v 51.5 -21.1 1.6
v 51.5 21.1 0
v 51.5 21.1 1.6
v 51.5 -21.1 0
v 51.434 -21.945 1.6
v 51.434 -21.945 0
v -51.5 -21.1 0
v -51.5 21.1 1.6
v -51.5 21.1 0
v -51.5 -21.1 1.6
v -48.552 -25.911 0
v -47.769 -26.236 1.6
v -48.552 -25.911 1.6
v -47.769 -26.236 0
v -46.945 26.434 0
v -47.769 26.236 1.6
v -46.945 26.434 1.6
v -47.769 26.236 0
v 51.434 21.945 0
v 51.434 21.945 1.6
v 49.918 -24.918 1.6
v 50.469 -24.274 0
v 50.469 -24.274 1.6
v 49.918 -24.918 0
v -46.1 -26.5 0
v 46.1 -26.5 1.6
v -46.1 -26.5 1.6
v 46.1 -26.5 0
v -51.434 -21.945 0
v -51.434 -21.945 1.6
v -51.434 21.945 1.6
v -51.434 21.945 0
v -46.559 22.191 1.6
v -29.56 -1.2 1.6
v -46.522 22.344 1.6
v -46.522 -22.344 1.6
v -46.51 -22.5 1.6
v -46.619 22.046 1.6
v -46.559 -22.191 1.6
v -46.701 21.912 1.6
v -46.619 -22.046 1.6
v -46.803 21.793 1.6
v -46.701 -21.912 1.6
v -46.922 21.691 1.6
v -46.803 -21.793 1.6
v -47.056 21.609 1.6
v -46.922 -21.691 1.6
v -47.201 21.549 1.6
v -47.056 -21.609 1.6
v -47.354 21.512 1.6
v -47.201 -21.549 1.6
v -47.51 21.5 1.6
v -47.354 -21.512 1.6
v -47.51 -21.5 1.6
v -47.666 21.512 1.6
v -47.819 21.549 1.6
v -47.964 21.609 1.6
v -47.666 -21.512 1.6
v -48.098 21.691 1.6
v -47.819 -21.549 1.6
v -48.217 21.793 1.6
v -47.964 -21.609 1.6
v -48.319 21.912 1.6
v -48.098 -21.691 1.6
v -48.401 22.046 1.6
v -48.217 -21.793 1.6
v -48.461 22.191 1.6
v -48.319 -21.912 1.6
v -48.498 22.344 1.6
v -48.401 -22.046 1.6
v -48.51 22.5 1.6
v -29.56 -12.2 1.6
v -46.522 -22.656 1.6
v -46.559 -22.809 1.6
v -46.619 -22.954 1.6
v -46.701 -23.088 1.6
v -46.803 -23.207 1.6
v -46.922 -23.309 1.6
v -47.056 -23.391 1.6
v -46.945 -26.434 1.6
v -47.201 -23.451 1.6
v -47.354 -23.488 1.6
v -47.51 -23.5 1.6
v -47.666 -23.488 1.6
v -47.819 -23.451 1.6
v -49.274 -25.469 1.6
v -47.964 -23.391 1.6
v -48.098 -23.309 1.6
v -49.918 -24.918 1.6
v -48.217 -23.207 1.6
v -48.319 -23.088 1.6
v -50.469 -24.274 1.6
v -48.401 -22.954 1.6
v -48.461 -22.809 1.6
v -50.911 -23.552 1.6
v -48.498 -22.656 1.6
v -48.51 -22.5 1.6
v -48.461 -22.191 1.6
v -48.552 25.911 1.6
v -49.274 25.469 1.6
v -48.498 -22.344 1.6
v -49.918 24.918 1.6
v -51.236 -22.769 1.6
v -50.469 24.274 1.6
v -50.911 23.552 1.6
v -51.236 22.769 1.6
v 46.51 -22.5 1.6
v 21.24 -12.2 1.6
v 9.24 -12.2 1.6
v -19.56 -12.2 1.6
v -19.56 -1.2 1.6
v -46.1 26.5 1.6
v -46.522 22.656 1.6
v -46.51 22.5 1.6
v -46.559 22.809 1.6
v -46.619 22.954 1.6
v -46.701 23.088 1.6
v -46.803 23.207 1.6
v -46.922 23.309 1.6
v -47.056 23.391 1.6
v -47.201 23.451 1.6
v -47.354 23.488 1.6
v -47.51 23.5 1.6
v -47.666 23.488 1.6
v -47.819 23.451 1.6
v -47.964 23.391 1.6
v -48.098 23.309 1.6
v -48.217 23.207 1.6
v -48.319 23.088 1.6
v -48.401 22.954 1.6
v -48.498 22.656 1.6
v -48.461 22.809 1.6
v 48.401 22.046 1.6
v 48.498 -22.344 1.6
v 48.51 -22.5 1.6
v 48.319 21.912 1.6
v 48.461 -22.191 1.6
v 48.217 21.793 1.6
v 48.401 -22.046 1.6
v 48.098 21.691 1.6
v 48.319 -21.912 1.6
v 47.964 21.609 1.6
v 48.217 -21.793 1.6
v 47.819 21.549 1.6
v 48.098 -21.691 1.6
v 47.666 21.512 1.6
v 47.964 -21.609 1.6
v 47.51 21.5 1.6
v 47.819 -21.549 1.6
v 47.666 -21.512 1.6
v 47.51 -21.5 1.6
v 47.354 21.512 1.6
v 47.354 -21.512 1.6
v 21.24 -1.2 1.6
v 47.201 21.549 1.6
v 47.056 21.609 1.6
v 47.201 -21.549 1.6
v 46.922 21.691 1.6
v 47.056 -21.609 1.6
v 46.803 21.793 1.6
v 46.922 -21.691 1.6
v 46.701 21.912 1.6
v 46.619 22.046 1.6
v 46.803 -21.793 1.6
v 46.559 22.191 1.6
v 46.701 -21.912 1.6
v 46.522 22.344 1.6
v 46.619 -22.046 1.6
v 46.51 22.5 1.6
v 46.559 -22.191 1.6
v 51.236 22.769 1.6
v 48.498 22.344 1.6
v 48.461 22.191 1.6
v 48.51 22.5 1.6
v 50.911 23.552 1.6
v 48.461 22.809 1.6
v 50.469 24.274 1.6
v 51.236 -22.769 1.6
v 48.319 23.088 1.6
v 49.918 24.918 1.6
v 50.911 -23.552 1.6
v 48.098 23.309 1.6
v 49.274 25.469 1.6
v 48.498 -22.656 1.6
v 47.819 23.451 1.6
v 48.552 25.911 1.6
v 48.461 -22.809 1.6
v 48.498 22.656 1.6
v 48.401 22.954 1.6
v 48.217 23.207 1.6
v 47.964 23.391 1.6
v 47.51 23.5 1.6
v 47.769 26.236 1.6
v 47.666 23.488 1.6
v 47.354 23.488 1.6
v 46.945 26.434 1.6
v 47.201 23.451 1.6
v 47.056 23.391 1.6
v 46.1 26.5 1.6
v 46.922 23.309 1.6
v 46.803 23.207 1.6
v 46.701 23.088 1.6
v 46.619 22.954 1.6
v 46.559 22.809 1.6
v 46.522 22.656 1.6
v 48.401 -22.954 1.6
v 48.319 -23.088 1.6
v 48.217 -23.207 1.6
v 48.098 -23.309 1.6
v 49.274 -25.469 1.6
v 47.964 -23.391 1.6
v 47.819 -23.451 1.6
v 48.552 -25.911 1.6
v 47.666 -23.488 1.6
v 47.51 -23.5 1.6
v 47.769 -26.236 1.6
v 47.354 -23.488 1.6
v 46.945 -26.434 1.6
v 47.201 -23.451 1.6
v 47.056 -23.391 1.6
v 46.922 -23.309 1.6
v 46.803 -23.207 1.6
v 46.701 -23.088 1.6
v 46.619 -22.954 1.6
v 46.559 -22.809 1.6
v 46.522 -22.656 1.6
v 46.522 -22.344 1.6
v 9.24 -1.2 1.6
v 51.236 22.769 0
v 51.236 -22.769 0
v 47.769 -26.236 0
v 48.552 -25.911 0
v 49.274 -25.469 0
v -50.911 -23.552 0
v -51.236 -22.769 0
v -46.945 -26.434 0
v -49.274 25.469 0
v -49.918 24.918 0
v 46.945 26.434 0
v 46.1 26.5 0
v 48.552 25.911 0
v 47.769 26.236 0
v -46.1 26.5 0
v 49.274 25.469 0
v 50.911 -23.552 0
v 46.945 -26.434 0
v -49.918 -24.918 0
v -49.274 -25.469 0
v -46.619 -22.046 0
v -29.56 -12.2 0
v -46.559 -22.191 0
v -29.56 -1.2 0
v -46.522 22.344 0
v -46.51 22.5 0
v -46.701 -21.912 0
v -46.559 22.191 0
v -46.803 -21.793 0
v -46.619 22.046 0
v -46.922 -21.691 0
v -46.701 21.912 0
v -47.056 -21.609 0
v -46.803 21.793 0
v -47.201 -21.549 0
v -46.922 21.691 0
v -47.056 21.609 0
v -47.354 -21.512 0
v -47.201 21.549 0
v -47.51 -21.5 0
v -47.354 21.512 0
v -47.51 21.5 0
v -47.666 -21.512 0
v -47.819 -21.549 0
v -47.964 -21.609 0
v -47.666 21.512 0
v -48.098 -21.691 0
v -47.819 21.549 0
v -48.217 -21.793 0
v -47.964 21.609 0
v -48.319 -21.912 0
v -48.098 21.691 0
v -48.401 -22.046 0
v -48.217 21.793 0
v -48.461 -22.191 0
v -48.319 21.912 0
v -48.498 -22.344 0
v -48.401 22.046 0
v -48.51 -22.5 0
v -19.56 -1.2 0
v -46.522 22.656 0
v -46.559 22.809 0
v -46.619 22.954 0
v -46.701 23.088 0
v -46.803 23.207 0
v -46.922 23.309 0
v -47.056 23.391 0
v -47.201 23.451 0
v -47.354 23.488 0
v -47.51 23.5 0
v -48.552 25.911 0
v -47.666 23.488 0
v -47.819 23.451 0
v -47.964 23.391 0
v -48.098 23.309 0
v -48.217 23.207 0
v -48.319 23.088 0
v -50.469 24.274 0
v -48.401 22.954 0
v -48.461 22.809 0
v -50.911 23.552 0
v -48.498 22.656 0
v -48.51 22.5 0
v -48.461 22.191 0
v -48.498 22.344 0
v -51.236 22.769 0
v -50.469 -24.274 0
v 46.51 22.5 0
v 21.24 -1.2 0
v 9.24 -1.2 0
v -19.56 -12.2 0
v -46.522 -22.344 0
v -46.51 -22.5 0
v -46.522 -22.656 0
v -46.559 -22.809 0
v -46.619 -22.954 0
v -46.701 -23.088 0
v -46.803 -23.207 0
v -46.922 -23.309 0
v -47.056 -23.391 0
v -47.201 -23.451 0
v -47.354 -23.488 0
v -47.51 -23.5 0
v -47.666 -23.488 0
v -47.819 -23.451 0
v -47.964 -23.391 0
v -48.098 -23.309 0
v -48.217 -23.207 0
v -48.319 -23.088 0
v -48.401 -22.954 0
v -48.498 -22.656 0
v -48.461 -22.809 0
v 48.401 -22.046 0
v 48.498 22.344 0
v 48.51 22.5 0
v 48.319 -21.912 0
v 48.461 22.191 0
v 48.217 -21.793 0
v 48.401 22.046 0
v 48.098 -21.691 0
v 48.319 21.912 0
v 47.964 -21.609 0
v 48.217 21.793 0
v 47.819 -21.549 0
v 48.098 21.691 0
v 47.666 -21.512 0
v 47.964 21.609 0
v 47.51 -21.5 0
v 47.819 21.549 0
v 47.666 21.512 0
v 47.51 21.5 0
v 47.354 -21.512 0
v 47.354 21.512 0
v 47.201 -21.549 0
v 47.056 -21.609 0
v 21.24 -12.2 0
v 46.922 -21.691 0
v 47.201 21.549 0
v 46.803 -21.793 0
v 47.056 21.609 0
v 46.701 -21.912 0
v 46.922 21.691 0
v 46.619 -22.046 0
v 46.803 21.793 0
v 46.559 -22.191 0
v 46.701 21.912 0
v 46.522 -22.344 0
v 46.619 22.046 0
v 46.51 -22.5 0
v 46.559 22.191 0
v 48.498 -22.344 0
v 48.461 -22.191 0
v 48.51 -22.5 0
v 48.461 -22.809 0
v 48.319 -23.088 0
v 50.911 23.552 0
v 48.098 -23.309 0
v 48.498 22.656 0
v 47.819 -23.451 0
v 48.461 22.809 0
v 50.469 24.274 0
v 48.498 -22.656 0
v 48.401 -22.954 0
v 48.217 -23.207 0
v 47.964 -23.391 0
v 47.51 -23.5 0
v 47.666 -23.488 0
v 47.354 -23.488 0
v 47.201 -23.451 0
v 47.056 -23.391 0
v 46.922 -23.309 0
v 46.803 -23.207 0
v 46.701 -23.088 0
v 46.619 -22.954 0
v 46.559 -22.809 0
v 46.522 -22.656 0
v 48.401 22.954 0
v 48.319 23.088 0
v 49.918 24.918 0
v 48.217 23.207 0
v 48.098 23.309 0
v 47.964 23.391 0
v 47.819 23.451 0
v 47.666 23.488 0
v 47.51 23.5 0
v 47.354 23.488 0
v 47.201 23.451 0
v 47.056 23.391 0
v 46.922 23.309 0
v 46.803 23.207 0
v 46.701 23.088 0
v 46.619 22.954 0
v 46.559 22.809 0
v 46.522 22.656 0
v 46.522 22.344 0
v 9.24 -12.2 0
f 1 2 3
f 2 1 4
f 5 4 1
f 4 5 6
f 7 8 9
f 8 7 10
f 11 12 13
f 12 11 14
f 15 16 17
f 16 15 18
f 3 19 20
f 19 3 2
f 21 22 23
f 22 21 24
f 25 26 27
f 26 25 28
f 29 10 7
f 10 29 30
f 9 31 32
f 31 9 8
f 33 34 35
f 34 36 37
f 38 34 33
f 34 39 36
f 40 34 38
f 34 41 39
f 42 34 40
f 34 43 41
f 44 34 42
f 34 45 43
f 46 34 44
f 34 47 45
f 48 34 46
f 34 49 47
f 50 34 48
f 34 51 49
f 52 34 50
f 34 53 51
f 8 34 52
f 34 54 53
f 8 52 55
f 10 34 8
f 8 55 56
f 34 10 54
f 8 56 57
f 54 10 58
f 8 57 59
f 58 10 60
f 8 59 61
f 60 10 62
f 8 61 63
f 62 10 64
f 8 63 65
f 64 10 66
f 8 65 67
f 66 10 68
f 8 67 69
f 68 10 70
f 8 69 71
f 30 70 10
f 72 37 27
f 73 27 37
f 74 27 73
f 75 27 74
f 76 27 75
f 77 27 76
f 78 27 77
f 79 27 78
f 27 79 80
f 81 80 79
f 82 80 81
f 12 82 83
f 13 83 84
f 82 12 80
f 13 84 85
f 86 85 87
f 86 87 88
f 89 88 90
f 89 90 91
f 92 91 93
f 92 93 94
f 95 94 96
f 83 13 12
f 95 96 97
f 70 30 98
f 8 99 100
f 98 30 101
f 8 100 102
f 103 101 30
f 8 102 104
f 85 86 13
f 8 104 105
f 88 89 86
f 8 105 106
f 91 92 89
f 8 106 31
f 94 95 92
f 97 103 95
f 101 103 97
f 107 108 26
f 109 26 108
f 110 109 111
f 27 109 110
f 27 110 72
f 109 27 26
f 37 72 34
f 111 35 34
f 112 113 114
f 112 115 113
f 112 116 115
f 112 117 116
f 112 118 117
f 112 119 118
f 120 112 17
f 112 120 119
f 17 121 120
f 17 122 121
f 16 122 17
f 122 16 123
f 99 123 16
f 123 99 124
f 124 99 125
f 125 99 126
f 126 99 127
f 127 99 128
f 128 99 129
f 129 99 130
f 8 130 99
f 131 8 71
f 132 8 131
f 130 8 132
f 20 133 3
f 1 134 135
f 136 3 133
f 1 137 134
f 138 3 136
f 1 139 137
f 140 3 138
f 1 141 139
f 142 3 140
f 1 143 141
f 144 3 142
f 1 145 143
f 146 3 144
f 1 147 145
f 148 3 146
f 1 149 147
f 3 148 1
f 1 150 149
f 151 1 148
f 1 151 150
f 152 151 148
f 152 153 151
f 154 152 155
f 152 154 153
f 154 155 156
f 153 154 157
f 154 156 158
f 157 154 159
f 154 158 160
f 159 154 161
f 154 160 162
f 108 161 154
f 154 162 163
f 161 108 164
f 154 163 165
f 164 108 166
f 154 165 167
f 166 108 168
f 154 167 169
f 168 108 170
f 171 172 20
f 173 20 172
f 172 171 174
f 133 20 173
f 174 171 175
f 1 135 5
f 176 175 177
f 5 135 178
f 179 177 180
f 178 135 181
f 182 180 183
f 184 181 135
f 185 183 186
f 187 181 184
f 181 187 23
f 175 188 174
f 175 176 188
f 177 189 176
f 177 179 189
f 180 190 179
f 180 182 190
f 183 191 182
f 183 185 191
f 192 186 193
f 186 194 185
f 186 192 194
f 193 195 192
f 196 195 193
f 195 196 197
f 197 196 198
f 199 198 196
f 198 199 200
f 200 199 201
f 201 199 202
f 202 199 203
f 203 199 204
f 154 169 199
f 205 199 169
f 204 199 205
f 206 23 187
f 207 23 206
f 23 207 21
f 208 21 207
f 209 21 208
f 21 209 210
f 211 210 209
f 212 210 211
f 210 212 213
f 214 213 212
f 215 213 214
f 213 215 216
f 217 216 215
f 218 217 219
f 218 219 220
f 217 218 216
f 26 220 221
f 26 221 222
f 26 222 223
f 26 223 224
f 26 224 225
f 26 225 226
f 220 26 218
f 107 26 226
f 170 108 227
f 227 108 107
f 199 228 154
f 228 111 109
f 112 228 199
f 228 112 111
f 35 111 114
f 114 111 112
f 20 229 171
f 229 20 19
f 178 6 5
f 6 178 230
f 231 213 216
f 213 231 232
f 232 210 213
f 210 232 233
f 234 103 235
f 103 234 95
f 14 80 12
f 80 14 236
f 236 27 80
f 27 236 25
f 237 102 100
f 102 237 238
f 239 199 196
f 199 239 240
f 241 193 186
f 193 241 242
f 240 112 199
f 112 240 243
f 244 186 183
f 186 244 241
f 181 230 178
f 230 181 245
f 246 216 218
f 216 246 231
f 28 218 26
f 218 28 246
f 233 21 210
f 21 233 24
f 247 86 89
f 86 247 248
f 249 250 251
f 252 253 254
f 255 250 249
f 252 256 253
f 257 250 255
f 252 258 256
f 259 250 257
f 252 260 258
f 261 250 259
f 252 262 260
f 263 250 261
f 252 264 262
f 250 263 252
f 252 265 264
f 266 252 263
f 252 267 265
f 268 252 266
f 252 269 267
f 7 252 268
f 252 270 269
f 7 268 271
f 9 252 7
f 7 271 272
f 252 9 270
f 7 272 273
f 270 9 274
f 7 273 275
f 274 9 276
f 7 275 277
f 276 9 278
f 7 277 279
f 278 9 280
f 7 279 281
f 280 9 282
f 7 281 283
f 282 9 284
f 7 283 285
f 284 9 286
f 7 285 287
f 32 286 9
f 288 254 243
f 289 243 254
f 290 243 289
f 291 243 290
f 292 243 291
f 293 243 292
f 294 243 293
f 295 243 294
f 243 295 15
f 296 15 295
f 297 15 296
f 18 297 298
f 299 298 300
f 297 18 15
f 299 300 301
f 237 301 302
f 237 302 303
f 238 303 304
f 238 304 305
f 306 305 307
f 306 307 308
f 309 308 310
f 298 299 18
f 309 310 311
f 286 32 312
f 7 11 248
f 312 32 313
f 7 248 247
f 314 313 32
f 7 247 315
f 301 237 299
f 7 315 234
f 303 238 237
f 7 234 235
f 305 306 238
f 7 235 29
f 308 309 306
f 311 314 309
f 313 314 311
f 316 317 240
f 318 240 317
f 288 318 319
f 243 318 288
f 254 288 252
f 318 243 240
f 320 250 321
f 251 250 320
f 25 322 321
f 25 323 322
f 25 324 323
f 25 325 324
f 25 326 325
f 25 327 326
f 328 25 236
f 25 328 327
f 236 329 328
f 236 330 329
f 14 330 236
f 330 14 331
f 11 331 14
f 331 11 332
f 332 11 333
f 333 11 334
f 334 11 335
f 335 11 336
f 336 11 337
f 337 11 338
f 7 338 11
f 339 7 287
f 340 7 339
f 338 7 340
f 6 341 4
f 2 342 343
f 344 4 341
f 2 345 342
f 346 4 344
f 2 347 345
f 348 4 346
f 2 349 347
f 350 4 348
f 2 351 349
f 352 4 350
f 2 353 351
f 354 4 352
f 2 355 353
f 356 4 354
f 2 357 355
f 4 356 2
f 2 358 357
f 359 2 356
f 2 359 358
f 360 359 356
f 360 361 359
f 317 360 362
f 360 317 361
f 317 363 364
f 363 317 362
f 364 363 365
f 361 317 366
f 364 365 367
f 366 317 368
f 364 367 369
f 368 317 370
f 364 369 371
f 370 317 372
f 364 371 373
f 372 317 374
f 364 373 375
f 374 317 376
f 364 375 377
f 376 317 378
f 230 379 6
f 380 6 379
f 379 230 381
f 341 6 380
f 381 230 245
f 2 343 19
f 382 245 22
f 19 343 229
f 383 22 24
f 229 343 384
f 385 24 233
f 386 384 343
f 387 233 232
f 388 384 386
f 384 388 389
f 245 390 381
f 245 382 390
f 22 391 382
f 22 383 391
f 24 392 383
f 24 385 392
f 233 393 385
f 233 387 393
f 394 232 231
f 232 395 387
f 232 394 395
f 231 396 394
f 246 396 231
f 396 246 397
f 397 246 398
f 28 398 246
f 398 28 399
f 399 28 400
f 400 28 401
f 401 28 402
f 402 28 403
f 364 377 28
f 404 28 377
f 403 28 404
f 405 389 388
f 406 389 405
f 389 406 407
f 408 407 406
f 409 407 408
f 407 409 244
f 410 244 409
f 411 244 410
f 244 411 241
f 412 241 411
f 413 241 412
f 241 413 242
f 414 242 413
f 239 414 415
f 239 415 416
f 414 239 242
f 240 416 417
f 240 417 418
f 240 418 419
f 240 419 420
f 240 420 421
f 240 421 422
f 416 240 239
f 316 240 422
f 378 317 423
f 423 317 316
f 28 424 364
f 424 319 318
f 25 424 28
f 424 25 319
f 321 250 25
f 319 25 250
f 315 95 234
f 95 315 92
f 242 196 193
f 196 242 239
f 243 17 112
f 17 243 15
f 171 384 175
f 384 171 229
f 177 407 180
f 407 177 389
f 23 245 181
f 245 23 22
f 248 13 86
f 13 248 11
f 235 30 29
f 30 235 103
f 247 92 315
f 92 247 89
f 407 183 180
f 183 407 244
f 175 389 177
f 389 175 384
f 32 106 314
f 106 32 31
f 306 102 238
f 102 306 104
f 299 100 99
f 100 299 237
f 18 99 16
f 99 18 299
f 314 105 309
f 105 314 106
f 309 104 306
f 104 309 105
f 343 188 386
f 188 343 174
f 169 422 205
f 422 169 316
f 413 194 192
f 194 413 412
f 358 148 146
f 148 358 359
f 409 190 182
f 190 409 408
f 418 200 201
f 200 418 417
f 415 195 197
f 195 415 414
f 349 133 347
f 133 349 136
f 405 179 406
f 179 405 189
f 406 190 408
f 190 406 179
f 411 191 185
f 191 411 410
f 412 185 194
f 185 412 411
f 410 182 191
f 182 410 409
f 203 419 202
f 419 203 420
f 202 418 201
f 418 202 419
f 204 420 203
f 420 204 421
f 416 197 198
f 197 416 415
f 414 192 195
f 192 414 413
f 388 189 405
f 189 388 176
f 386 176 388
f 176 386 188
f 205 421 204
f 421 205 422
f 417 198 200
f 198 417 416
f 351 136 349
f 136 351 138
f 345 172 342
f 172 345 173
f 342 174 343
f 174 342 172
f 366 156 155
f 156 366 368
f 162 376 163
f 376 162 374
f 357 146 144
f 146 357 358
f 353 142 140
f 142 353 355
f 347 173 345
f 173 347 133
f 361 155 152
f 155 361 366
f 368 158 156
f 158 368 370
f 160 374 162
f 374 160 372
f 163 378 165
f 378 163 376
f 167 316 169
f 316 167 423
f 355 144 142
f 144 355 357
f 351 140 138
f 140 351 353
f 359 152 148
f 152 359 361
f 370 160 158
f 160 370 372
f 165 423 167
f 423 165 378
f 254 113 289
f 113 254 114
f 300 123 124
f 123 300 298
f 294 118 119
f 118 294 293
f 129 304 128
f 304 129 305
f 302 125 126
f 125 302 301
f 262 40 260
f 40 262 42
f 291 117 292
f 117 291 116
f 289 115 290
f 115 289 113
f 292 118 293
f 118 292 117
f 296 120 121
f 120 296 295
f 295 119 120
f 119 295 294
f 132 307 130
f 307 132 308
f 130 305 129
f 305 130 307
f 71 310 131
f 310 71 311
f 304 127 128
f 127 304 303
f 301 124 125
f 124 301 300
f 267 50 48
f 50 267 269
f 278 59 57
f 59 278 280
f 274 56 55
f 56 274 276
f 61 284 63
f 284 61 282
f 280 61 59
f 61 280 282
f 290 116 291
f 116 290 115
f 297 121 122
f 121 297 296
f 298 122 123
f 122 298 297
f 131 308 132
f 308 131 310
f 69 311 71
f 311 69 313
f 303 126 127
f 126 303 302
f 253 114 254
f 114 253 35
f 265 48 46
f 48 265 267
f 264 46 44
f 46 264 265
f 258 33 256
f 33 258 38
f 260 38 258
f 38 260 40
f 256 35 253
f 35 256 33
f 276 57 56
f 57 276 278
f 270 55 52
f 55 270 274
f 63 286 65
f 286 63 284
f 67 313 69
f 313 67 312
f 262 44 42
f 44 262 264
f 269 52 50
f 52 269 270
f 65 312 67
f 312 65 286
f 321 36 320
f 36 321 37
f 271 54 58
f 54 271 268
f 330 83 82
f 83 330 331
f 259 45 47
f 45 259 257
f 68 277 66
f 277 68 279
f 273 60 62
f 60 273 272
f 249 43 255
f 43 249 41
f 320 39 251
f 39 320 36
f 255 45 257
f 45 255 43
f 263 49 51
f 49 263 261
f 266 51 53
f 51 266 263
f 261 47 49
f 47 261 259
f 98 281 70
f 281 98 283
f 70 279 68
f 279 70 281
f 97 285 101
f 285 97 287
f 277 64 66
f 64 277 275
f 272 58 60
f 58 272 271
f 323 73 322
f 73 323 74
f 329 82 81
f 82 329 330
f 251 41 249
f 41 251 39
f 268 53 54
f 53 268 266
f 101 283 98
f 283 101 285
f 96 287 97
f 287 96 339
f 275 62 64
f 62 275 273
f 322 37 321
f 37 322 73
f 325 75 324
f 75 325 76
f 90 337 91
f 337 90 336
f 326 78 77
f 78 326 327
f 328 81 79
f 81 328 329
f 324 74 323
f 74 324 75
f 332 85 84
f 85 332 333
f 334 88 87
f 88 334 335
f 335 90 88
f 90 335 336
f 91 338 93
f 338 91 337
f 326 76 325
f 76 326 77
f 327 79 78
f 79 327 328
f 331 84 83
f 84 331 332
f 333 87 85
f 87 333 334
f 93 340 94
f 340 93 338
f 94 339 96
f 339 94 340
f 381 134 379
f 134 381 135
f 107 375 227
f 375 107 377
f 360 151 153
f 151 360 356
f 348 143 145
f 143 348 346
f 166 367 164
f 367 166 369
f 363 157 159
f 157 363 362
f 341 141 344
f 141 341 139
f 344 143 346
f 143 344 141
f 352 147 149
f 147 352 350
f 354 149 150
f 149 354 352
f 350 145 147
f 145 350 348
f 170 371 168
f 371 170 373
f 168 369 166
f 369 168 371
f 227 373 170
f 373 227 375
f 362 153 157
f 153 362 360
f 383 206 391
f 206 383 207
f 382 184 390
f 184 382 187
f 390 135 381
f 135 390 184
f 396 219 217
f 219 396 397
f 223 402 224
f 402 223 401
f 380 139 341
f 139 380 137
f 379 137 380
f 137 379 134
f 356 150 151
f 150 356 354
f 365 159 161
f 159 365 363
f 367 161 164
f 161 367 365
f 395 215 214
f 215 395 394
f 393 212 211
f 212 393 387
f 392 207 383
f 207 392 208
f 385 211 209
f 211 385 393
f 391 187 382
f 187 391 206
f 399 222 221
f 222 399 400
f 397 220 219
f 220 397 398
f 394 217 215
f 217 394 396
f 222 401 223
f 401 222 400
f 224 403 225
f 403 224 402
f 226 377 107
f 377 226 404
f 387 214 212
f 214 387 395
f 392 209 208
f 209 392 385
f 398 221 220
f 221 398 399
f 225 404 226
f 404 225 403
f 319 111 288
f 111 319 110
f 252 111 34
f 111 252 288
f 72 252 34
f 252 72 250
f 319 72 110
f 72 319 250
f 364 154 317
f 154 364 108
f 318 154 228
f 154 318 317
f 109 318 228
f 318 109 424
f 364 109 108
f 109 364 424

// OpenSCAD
// file: src/otvory_conf.scad
//Konfigurace pro otvory

//1B) - LCD 2x16
//vzdalenost der
vzdalenost_der_x = 75;
vzdalenost_der_y = 31;
prumer_otvoru = 2.7;
prumer_sloupku = 5;

//ramecek LCD
ramecek_x = 72;
ramecek_y = 23;

//vyska ramecku LCD
ramecek_vyska = 5;
// file: configuration.scad
//UNIBOX04A
//------------------------------------------------------------
///*

rozmer_x=103;
rozmer_y=53;
sila=1.5;

roztec_srouby_x=95.02;
roztec_srouby_y=45;
prumer_sroubu=2;
zakulaceni_hrany=5.4;

roztec_der=10.16;
pocet_der_osa_x=8;
// file: src/UNIBOX04A_D01.scad
include <../configuration.scad>


//PLBASE ZAKLADNI
//------------------------------------------------------------

UNIBOX04A_D01();

module UNIBOX04A_D01(){

difference () {

translate([-(rozmer_x/2-zakulaceni_hrany),-(rozmer_y/2-zakulaceni_hrany),0]) 
minkowski()
    {
	cube([rozmer_x-2*zakulaceni_hrany,rozmer_y-2*zakulaceni_hrany,sila]);         
        cylinder(r=zakulaceni_hrany,h=0.1);
    }
  
//odecet otvory

translate([roztec_srouby_x/2,roztec_srouby_y/2,0])      
    cylinder(sila*5, d=prumer_sroubu, center=true);   
  
translate([-roztec_srouby_x/2,roztec_srouby_y/2,0])      
    cylinder(sila*5, d=prumer_sroubu, center=true);    

translate([-roztec_srouby_x/2,-roztec_srouby_y/2,0])      
    cylinder(sila*5, d=prumer_sroubu, center=true);

translate([roztec_srouby_x/2,-roztec_srouby_y/2,0])      
    cylinder(sila*5, d=prumer_sroubu, center=true);

}
}
// main file
$fn=40; // model faces resolution.
use <src/UNIBOX04A_D01.scad>
use <src/otvory.scad>

include <configuration.scad>
include <src/otvory_conf.scad>


barva_sloupku = "cyan";
barva_listy = "red";
barva_celicka = "green";
barva_plbase = "yellow";

//Předni čeličko
//------------------------------------------------------------

vzdalenost_AL=8.3; //vzdalenost od hrany čelíčka k vrchní hraně ALbase 9

difference() {
color(barva_sloupku)
translate([0,0,0])
UNIBOX04A_D01();



posun_modulu_der_x=0;
rotate(a=[-90,0,0])
translate([posun_modulu_der_x*roztec_der-roztec_der*(pocet_der_osa_x-1)/2,0,-rozmer_y/2+vzdalenost_AL])
UNIPOWER02A(2*sila,roztec_der);
   
    
posun_modulu_der_x1=4;
rotate(a=[-90,0,0])
translate([posun_modulu_der_x1*roztec_der-roztec_der*(pocet_der_osa_x-1)/2,0,-rozmer_y/2+vzdalenost_AL])

USBI2C01A(2*sila,roztec_der);
    
    
 posun_modulu_der_x2=13;
rotate(a=[-90,0,0])
translate([posun_modulu_der_x2*roztec_der-roztec_der*(pocet_der_osa_x-1)/2,0,-rozmer_y/2+vzdalenost_AL])

 VYPINAC(2*sila,roztec_der,vzdalenost_AL);
  
    
     }  
     
    
